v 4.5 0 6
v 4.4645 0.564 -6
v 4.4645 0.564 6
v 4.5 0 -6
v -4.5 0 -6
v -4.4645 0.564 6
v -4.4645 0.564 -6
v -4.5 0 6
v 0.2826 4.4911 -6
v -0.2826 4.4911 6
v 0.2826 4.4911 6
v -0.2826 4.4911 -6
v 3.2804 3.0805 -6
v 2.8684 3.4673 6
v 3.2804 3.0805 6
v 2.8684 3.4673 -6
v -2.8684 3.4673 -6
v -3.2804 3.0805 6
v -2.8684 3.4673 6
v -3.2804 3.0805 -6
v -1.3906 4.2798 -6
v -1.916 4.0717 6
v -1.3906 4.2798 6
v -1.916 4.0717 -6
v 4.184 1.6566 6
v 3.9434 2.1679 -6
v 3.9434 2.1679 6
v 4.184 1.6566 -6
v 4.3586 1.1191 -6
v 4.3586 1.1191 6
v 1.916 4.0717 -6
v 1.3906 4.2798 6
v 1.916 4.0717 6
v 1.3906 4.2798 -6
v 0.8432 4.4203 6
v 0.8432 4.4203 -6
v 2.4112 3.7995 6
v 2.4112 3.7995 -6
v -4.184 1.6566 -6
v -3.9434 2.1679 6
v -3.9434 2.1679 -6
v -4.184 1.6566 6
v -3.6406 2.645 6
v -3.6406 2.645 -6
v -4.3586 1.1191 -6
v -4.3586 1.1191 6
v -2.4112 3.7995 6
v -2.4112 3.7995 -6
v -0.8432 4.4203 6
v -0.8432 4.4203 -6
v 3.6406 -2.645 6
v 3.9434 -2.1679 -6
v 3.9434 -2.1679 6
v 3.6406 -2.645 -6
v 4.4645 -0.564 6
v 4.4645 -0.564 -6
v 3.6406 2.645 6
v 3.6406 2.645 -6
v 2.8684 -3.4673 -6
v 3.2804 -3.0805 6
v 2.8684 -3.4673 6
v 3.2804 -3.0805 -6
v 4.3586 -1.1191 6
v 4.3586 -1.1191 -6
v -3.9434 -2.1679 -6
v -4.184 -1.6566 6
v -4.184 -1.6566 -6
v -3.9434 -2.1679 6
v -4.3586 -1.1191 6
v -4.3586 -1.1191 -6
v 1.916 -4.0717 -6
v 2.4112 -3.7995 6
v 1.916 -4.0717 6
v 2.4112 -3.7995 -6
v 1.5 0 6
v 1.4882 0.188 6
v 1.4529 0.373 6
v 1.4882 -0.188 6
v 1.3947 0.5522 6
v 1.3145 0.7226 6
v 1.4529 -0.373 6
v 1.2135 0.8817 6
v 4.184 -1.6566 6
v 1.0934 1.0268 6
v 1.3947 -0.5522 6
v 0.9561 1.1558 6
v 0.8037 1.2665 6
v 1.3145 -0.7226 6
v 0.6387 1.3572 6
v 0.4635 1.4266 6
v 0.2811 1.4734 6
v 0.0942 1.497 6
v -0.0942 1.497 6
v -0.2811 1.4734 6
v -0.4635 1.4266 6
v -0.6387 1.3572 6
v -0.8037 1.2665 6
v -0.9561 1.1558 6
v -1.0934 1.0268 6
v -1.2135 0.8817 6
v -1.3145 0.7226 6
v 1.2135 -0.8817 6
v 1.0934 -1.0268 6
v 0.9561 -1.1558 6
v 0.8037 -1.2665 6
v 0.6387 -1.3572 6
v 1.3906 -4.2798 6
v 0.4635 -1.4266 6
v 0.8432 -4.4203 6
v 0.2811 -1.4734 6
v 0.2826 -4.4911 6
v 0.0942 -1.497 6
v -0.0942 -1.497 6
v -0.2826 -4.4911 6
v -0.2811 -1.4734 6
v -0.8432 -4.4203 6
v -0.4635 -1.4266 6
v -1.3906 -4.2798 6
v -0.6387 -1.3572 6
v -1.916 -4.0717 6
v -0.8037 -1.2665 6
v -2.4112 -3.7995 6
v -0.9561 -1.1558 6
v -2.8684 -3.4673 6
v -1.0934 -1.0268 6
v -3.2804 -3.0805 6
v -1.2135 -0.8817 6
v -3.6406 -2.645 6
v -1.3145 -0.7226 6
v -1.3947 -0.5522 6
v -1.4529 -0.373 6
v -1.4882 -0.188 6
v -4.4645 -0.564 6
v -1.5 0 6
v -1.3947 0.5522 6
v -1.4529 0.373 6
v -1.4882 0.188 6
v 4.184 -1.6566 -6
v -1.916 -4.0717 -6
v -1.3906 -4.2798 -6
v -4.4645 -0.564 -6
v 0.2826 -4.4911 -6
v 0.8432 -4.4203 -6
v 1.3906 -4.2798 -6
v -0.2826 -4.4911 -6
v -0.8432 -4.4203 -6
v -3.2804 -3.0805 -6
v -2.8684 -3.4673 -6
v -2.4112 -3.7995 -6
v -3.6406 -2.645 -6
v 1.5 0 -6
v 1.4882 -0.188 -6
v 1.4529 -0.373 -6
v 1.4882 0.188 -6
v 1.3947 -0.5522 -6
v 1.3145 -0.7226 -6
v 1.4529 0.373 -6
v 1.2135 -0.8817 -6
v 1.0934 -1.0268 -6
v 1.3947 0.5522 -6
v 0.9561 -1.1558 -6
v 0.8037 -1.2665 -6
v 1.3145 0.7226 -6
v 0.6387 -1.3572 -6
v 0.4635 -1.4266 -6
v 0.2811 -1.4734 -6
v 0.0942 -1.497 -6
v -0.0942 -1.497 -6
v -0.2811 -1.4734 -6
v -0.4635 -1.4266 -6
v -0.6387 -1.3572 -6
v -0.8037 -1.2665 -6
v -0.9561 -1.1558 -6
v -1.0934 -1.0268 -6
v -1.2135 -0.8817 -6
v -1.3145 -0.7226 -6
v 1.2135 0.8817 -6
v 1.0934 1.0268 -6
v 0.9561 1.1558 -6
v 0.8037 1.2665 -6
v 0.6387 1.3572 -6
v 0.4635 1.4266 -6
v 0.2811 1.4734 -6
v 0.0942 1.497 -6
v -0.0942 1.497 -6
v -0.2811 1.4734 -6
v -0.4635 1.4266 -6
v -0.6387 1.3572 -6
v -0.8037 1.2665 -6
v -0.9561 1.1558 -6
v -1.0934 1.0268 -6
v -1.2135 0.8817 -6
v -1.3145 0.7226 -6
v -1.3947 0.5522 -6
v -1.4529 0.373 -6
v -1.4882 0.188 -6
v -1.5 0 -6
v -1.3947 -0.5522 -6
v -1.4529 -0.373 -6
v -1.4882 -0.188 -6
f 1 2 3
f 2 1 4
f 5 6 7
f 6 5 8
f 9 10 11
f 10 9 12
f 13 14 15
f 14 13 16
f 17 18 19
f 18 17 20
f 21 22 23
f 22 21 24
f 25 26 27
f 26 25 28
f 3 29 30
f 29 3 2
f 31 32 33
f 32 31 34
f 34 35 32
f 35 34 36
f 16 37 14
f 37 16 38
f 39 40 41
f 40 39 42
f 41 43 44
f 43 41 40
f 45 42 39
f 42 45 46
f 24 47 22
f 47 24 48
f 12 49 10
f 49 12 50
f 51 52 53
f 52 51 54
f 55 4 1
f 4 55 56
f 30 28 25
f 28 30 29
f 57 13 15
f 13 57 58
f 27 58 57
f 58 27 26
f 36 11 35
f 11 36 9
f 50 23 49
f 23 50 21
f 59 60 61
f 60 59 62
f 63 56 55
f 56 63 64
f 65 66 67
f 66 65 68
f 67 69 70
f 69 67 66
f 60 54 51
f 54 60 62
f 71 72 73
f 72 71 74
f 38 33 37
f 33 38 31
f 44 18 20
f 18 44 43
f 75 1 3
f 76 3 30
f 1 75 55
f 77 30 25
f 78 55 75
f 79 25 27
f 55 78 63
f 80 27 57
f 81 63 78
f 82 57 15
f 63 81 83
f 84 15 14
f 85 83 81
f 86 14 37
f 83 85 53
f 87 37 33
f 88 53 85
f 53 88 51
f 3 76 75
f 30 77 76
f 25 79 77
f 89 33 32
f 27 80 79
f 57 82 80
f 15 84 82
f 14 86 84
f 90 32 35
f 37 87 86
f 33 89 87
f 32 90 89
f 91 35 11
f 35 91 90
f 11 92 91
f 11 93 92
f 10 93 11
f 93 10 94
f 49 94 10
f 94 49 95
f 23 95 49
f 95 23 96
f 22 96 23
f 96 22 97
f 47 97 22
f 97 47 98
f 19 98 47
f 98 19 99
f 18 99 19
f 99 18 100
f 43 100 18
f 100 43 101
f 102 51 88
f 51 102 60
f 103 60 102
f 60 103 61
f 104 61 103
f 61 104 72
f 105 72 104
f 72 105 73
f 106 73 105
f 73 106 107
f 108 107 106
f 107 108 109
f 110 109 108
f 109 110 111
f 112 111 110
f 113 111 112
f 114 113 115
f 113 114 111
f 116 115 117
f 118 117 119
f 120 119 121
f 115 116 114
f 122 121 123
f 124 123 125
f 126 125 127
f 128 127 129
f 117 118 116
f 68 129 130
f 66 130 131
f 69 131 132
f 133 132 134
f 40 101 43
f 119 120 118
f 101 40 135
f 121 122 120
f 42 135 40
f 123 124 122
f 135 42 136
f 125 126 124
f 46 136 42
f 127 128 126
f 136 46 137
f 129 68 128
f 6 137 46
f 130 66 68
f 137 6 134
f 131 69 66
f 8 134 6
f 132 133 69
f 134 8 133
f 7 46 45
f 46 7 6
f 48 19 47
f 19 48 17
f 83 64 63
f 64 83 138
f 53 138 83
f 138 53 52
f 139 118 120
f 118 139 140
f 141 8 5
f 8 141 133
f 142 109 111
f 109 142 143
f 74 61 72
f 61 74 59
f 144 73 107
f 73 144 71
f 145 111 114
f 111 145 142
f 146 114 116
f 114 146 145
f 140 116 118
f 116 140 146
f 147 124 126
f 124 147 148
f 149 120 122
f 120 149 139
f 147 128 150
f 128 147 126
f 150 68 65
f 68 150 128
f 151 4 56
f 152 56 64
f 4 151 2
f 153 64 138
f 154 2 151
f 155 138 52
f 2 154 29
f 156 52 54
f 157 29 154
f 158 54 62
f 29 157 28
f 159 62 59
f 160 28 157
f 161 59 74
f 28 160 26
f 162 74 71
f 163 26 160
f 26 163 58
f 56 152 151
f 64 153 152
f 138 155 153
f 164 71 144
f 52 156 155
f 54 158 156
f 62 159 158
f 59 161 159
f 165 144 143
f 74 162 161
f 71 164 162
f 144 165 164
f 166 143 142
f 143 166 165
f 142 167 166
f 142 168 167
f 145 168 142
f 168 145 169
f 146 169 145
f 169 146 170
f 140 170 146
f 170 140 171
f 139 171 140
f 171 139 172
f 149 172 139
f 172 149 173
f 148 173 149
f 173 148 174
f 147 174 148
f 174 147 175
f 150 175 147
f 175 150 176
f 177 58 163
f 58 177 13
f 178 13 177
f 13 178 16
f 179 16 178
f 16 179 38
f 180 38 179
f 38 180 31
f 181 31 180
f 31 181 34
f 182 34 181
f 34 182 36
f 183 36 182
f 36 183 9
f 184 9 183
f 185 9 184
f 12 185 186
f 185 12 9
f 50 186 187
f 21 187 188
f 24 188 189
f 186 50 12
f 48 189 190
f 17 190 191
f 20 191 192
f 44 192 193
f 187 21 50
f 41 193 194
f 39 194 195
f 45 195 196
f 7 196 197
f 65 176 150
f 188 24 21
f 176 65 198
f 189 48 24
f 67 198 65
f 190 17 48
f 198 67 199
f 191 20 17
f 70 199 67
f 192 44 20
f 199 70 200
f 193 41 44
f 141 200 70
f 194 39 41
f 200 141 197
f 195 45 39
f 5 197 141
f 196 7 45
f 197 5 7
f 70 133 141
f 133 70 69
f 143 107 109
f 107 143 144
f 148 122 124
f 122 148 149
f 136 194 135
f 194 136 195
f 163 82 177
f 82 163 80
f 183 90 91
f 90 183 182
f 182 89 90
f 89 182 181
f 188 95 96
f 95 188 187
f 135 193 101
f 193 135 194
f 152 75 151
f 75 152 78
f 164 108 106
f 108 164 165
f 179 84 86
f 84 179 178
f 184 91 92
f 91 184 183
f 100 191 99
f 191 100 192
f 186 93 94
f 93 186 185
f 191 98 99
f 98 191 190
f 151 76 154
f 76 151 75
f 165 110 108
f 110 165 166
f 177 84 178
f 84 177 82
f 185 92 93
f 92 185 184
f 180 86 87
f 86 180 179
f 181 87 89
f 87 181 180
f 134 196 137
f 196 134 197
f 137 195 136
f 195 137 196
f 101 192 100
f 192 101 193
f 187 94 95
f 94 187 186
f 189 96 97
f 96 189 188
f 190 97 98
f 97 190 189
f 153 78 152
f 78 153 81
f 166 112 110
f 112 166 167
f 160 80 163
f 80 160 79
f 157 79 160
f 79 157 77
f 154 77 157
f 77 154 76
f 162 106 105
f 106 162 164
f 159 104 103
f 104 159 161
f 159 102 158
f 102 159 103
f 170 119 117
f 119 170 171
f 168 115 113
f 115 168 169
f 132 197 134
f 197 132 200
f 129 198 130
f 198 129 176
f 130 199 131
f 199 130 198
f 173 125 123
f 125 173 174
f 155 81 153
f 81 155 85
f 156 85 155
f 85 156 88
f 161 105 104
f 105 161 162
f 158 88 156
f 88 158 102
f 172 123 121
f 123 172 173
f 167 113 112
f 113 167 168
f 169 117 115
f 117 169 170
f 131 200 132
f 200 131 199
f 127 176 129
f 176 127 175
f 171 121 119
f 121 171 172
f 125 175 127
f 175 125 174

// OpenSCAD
$fn = 50;


difference() {
	union() {
		translate(v = [0, 0, -6.0000000000]) {
			cylinder(h = 12, r = 4.5000000000);
		}
	}
	union() {
		translate(v = [0, 0, -100.0000000000]) {
			cylinder(h = 200, r = 1.5000000000);
		}
	}
}
